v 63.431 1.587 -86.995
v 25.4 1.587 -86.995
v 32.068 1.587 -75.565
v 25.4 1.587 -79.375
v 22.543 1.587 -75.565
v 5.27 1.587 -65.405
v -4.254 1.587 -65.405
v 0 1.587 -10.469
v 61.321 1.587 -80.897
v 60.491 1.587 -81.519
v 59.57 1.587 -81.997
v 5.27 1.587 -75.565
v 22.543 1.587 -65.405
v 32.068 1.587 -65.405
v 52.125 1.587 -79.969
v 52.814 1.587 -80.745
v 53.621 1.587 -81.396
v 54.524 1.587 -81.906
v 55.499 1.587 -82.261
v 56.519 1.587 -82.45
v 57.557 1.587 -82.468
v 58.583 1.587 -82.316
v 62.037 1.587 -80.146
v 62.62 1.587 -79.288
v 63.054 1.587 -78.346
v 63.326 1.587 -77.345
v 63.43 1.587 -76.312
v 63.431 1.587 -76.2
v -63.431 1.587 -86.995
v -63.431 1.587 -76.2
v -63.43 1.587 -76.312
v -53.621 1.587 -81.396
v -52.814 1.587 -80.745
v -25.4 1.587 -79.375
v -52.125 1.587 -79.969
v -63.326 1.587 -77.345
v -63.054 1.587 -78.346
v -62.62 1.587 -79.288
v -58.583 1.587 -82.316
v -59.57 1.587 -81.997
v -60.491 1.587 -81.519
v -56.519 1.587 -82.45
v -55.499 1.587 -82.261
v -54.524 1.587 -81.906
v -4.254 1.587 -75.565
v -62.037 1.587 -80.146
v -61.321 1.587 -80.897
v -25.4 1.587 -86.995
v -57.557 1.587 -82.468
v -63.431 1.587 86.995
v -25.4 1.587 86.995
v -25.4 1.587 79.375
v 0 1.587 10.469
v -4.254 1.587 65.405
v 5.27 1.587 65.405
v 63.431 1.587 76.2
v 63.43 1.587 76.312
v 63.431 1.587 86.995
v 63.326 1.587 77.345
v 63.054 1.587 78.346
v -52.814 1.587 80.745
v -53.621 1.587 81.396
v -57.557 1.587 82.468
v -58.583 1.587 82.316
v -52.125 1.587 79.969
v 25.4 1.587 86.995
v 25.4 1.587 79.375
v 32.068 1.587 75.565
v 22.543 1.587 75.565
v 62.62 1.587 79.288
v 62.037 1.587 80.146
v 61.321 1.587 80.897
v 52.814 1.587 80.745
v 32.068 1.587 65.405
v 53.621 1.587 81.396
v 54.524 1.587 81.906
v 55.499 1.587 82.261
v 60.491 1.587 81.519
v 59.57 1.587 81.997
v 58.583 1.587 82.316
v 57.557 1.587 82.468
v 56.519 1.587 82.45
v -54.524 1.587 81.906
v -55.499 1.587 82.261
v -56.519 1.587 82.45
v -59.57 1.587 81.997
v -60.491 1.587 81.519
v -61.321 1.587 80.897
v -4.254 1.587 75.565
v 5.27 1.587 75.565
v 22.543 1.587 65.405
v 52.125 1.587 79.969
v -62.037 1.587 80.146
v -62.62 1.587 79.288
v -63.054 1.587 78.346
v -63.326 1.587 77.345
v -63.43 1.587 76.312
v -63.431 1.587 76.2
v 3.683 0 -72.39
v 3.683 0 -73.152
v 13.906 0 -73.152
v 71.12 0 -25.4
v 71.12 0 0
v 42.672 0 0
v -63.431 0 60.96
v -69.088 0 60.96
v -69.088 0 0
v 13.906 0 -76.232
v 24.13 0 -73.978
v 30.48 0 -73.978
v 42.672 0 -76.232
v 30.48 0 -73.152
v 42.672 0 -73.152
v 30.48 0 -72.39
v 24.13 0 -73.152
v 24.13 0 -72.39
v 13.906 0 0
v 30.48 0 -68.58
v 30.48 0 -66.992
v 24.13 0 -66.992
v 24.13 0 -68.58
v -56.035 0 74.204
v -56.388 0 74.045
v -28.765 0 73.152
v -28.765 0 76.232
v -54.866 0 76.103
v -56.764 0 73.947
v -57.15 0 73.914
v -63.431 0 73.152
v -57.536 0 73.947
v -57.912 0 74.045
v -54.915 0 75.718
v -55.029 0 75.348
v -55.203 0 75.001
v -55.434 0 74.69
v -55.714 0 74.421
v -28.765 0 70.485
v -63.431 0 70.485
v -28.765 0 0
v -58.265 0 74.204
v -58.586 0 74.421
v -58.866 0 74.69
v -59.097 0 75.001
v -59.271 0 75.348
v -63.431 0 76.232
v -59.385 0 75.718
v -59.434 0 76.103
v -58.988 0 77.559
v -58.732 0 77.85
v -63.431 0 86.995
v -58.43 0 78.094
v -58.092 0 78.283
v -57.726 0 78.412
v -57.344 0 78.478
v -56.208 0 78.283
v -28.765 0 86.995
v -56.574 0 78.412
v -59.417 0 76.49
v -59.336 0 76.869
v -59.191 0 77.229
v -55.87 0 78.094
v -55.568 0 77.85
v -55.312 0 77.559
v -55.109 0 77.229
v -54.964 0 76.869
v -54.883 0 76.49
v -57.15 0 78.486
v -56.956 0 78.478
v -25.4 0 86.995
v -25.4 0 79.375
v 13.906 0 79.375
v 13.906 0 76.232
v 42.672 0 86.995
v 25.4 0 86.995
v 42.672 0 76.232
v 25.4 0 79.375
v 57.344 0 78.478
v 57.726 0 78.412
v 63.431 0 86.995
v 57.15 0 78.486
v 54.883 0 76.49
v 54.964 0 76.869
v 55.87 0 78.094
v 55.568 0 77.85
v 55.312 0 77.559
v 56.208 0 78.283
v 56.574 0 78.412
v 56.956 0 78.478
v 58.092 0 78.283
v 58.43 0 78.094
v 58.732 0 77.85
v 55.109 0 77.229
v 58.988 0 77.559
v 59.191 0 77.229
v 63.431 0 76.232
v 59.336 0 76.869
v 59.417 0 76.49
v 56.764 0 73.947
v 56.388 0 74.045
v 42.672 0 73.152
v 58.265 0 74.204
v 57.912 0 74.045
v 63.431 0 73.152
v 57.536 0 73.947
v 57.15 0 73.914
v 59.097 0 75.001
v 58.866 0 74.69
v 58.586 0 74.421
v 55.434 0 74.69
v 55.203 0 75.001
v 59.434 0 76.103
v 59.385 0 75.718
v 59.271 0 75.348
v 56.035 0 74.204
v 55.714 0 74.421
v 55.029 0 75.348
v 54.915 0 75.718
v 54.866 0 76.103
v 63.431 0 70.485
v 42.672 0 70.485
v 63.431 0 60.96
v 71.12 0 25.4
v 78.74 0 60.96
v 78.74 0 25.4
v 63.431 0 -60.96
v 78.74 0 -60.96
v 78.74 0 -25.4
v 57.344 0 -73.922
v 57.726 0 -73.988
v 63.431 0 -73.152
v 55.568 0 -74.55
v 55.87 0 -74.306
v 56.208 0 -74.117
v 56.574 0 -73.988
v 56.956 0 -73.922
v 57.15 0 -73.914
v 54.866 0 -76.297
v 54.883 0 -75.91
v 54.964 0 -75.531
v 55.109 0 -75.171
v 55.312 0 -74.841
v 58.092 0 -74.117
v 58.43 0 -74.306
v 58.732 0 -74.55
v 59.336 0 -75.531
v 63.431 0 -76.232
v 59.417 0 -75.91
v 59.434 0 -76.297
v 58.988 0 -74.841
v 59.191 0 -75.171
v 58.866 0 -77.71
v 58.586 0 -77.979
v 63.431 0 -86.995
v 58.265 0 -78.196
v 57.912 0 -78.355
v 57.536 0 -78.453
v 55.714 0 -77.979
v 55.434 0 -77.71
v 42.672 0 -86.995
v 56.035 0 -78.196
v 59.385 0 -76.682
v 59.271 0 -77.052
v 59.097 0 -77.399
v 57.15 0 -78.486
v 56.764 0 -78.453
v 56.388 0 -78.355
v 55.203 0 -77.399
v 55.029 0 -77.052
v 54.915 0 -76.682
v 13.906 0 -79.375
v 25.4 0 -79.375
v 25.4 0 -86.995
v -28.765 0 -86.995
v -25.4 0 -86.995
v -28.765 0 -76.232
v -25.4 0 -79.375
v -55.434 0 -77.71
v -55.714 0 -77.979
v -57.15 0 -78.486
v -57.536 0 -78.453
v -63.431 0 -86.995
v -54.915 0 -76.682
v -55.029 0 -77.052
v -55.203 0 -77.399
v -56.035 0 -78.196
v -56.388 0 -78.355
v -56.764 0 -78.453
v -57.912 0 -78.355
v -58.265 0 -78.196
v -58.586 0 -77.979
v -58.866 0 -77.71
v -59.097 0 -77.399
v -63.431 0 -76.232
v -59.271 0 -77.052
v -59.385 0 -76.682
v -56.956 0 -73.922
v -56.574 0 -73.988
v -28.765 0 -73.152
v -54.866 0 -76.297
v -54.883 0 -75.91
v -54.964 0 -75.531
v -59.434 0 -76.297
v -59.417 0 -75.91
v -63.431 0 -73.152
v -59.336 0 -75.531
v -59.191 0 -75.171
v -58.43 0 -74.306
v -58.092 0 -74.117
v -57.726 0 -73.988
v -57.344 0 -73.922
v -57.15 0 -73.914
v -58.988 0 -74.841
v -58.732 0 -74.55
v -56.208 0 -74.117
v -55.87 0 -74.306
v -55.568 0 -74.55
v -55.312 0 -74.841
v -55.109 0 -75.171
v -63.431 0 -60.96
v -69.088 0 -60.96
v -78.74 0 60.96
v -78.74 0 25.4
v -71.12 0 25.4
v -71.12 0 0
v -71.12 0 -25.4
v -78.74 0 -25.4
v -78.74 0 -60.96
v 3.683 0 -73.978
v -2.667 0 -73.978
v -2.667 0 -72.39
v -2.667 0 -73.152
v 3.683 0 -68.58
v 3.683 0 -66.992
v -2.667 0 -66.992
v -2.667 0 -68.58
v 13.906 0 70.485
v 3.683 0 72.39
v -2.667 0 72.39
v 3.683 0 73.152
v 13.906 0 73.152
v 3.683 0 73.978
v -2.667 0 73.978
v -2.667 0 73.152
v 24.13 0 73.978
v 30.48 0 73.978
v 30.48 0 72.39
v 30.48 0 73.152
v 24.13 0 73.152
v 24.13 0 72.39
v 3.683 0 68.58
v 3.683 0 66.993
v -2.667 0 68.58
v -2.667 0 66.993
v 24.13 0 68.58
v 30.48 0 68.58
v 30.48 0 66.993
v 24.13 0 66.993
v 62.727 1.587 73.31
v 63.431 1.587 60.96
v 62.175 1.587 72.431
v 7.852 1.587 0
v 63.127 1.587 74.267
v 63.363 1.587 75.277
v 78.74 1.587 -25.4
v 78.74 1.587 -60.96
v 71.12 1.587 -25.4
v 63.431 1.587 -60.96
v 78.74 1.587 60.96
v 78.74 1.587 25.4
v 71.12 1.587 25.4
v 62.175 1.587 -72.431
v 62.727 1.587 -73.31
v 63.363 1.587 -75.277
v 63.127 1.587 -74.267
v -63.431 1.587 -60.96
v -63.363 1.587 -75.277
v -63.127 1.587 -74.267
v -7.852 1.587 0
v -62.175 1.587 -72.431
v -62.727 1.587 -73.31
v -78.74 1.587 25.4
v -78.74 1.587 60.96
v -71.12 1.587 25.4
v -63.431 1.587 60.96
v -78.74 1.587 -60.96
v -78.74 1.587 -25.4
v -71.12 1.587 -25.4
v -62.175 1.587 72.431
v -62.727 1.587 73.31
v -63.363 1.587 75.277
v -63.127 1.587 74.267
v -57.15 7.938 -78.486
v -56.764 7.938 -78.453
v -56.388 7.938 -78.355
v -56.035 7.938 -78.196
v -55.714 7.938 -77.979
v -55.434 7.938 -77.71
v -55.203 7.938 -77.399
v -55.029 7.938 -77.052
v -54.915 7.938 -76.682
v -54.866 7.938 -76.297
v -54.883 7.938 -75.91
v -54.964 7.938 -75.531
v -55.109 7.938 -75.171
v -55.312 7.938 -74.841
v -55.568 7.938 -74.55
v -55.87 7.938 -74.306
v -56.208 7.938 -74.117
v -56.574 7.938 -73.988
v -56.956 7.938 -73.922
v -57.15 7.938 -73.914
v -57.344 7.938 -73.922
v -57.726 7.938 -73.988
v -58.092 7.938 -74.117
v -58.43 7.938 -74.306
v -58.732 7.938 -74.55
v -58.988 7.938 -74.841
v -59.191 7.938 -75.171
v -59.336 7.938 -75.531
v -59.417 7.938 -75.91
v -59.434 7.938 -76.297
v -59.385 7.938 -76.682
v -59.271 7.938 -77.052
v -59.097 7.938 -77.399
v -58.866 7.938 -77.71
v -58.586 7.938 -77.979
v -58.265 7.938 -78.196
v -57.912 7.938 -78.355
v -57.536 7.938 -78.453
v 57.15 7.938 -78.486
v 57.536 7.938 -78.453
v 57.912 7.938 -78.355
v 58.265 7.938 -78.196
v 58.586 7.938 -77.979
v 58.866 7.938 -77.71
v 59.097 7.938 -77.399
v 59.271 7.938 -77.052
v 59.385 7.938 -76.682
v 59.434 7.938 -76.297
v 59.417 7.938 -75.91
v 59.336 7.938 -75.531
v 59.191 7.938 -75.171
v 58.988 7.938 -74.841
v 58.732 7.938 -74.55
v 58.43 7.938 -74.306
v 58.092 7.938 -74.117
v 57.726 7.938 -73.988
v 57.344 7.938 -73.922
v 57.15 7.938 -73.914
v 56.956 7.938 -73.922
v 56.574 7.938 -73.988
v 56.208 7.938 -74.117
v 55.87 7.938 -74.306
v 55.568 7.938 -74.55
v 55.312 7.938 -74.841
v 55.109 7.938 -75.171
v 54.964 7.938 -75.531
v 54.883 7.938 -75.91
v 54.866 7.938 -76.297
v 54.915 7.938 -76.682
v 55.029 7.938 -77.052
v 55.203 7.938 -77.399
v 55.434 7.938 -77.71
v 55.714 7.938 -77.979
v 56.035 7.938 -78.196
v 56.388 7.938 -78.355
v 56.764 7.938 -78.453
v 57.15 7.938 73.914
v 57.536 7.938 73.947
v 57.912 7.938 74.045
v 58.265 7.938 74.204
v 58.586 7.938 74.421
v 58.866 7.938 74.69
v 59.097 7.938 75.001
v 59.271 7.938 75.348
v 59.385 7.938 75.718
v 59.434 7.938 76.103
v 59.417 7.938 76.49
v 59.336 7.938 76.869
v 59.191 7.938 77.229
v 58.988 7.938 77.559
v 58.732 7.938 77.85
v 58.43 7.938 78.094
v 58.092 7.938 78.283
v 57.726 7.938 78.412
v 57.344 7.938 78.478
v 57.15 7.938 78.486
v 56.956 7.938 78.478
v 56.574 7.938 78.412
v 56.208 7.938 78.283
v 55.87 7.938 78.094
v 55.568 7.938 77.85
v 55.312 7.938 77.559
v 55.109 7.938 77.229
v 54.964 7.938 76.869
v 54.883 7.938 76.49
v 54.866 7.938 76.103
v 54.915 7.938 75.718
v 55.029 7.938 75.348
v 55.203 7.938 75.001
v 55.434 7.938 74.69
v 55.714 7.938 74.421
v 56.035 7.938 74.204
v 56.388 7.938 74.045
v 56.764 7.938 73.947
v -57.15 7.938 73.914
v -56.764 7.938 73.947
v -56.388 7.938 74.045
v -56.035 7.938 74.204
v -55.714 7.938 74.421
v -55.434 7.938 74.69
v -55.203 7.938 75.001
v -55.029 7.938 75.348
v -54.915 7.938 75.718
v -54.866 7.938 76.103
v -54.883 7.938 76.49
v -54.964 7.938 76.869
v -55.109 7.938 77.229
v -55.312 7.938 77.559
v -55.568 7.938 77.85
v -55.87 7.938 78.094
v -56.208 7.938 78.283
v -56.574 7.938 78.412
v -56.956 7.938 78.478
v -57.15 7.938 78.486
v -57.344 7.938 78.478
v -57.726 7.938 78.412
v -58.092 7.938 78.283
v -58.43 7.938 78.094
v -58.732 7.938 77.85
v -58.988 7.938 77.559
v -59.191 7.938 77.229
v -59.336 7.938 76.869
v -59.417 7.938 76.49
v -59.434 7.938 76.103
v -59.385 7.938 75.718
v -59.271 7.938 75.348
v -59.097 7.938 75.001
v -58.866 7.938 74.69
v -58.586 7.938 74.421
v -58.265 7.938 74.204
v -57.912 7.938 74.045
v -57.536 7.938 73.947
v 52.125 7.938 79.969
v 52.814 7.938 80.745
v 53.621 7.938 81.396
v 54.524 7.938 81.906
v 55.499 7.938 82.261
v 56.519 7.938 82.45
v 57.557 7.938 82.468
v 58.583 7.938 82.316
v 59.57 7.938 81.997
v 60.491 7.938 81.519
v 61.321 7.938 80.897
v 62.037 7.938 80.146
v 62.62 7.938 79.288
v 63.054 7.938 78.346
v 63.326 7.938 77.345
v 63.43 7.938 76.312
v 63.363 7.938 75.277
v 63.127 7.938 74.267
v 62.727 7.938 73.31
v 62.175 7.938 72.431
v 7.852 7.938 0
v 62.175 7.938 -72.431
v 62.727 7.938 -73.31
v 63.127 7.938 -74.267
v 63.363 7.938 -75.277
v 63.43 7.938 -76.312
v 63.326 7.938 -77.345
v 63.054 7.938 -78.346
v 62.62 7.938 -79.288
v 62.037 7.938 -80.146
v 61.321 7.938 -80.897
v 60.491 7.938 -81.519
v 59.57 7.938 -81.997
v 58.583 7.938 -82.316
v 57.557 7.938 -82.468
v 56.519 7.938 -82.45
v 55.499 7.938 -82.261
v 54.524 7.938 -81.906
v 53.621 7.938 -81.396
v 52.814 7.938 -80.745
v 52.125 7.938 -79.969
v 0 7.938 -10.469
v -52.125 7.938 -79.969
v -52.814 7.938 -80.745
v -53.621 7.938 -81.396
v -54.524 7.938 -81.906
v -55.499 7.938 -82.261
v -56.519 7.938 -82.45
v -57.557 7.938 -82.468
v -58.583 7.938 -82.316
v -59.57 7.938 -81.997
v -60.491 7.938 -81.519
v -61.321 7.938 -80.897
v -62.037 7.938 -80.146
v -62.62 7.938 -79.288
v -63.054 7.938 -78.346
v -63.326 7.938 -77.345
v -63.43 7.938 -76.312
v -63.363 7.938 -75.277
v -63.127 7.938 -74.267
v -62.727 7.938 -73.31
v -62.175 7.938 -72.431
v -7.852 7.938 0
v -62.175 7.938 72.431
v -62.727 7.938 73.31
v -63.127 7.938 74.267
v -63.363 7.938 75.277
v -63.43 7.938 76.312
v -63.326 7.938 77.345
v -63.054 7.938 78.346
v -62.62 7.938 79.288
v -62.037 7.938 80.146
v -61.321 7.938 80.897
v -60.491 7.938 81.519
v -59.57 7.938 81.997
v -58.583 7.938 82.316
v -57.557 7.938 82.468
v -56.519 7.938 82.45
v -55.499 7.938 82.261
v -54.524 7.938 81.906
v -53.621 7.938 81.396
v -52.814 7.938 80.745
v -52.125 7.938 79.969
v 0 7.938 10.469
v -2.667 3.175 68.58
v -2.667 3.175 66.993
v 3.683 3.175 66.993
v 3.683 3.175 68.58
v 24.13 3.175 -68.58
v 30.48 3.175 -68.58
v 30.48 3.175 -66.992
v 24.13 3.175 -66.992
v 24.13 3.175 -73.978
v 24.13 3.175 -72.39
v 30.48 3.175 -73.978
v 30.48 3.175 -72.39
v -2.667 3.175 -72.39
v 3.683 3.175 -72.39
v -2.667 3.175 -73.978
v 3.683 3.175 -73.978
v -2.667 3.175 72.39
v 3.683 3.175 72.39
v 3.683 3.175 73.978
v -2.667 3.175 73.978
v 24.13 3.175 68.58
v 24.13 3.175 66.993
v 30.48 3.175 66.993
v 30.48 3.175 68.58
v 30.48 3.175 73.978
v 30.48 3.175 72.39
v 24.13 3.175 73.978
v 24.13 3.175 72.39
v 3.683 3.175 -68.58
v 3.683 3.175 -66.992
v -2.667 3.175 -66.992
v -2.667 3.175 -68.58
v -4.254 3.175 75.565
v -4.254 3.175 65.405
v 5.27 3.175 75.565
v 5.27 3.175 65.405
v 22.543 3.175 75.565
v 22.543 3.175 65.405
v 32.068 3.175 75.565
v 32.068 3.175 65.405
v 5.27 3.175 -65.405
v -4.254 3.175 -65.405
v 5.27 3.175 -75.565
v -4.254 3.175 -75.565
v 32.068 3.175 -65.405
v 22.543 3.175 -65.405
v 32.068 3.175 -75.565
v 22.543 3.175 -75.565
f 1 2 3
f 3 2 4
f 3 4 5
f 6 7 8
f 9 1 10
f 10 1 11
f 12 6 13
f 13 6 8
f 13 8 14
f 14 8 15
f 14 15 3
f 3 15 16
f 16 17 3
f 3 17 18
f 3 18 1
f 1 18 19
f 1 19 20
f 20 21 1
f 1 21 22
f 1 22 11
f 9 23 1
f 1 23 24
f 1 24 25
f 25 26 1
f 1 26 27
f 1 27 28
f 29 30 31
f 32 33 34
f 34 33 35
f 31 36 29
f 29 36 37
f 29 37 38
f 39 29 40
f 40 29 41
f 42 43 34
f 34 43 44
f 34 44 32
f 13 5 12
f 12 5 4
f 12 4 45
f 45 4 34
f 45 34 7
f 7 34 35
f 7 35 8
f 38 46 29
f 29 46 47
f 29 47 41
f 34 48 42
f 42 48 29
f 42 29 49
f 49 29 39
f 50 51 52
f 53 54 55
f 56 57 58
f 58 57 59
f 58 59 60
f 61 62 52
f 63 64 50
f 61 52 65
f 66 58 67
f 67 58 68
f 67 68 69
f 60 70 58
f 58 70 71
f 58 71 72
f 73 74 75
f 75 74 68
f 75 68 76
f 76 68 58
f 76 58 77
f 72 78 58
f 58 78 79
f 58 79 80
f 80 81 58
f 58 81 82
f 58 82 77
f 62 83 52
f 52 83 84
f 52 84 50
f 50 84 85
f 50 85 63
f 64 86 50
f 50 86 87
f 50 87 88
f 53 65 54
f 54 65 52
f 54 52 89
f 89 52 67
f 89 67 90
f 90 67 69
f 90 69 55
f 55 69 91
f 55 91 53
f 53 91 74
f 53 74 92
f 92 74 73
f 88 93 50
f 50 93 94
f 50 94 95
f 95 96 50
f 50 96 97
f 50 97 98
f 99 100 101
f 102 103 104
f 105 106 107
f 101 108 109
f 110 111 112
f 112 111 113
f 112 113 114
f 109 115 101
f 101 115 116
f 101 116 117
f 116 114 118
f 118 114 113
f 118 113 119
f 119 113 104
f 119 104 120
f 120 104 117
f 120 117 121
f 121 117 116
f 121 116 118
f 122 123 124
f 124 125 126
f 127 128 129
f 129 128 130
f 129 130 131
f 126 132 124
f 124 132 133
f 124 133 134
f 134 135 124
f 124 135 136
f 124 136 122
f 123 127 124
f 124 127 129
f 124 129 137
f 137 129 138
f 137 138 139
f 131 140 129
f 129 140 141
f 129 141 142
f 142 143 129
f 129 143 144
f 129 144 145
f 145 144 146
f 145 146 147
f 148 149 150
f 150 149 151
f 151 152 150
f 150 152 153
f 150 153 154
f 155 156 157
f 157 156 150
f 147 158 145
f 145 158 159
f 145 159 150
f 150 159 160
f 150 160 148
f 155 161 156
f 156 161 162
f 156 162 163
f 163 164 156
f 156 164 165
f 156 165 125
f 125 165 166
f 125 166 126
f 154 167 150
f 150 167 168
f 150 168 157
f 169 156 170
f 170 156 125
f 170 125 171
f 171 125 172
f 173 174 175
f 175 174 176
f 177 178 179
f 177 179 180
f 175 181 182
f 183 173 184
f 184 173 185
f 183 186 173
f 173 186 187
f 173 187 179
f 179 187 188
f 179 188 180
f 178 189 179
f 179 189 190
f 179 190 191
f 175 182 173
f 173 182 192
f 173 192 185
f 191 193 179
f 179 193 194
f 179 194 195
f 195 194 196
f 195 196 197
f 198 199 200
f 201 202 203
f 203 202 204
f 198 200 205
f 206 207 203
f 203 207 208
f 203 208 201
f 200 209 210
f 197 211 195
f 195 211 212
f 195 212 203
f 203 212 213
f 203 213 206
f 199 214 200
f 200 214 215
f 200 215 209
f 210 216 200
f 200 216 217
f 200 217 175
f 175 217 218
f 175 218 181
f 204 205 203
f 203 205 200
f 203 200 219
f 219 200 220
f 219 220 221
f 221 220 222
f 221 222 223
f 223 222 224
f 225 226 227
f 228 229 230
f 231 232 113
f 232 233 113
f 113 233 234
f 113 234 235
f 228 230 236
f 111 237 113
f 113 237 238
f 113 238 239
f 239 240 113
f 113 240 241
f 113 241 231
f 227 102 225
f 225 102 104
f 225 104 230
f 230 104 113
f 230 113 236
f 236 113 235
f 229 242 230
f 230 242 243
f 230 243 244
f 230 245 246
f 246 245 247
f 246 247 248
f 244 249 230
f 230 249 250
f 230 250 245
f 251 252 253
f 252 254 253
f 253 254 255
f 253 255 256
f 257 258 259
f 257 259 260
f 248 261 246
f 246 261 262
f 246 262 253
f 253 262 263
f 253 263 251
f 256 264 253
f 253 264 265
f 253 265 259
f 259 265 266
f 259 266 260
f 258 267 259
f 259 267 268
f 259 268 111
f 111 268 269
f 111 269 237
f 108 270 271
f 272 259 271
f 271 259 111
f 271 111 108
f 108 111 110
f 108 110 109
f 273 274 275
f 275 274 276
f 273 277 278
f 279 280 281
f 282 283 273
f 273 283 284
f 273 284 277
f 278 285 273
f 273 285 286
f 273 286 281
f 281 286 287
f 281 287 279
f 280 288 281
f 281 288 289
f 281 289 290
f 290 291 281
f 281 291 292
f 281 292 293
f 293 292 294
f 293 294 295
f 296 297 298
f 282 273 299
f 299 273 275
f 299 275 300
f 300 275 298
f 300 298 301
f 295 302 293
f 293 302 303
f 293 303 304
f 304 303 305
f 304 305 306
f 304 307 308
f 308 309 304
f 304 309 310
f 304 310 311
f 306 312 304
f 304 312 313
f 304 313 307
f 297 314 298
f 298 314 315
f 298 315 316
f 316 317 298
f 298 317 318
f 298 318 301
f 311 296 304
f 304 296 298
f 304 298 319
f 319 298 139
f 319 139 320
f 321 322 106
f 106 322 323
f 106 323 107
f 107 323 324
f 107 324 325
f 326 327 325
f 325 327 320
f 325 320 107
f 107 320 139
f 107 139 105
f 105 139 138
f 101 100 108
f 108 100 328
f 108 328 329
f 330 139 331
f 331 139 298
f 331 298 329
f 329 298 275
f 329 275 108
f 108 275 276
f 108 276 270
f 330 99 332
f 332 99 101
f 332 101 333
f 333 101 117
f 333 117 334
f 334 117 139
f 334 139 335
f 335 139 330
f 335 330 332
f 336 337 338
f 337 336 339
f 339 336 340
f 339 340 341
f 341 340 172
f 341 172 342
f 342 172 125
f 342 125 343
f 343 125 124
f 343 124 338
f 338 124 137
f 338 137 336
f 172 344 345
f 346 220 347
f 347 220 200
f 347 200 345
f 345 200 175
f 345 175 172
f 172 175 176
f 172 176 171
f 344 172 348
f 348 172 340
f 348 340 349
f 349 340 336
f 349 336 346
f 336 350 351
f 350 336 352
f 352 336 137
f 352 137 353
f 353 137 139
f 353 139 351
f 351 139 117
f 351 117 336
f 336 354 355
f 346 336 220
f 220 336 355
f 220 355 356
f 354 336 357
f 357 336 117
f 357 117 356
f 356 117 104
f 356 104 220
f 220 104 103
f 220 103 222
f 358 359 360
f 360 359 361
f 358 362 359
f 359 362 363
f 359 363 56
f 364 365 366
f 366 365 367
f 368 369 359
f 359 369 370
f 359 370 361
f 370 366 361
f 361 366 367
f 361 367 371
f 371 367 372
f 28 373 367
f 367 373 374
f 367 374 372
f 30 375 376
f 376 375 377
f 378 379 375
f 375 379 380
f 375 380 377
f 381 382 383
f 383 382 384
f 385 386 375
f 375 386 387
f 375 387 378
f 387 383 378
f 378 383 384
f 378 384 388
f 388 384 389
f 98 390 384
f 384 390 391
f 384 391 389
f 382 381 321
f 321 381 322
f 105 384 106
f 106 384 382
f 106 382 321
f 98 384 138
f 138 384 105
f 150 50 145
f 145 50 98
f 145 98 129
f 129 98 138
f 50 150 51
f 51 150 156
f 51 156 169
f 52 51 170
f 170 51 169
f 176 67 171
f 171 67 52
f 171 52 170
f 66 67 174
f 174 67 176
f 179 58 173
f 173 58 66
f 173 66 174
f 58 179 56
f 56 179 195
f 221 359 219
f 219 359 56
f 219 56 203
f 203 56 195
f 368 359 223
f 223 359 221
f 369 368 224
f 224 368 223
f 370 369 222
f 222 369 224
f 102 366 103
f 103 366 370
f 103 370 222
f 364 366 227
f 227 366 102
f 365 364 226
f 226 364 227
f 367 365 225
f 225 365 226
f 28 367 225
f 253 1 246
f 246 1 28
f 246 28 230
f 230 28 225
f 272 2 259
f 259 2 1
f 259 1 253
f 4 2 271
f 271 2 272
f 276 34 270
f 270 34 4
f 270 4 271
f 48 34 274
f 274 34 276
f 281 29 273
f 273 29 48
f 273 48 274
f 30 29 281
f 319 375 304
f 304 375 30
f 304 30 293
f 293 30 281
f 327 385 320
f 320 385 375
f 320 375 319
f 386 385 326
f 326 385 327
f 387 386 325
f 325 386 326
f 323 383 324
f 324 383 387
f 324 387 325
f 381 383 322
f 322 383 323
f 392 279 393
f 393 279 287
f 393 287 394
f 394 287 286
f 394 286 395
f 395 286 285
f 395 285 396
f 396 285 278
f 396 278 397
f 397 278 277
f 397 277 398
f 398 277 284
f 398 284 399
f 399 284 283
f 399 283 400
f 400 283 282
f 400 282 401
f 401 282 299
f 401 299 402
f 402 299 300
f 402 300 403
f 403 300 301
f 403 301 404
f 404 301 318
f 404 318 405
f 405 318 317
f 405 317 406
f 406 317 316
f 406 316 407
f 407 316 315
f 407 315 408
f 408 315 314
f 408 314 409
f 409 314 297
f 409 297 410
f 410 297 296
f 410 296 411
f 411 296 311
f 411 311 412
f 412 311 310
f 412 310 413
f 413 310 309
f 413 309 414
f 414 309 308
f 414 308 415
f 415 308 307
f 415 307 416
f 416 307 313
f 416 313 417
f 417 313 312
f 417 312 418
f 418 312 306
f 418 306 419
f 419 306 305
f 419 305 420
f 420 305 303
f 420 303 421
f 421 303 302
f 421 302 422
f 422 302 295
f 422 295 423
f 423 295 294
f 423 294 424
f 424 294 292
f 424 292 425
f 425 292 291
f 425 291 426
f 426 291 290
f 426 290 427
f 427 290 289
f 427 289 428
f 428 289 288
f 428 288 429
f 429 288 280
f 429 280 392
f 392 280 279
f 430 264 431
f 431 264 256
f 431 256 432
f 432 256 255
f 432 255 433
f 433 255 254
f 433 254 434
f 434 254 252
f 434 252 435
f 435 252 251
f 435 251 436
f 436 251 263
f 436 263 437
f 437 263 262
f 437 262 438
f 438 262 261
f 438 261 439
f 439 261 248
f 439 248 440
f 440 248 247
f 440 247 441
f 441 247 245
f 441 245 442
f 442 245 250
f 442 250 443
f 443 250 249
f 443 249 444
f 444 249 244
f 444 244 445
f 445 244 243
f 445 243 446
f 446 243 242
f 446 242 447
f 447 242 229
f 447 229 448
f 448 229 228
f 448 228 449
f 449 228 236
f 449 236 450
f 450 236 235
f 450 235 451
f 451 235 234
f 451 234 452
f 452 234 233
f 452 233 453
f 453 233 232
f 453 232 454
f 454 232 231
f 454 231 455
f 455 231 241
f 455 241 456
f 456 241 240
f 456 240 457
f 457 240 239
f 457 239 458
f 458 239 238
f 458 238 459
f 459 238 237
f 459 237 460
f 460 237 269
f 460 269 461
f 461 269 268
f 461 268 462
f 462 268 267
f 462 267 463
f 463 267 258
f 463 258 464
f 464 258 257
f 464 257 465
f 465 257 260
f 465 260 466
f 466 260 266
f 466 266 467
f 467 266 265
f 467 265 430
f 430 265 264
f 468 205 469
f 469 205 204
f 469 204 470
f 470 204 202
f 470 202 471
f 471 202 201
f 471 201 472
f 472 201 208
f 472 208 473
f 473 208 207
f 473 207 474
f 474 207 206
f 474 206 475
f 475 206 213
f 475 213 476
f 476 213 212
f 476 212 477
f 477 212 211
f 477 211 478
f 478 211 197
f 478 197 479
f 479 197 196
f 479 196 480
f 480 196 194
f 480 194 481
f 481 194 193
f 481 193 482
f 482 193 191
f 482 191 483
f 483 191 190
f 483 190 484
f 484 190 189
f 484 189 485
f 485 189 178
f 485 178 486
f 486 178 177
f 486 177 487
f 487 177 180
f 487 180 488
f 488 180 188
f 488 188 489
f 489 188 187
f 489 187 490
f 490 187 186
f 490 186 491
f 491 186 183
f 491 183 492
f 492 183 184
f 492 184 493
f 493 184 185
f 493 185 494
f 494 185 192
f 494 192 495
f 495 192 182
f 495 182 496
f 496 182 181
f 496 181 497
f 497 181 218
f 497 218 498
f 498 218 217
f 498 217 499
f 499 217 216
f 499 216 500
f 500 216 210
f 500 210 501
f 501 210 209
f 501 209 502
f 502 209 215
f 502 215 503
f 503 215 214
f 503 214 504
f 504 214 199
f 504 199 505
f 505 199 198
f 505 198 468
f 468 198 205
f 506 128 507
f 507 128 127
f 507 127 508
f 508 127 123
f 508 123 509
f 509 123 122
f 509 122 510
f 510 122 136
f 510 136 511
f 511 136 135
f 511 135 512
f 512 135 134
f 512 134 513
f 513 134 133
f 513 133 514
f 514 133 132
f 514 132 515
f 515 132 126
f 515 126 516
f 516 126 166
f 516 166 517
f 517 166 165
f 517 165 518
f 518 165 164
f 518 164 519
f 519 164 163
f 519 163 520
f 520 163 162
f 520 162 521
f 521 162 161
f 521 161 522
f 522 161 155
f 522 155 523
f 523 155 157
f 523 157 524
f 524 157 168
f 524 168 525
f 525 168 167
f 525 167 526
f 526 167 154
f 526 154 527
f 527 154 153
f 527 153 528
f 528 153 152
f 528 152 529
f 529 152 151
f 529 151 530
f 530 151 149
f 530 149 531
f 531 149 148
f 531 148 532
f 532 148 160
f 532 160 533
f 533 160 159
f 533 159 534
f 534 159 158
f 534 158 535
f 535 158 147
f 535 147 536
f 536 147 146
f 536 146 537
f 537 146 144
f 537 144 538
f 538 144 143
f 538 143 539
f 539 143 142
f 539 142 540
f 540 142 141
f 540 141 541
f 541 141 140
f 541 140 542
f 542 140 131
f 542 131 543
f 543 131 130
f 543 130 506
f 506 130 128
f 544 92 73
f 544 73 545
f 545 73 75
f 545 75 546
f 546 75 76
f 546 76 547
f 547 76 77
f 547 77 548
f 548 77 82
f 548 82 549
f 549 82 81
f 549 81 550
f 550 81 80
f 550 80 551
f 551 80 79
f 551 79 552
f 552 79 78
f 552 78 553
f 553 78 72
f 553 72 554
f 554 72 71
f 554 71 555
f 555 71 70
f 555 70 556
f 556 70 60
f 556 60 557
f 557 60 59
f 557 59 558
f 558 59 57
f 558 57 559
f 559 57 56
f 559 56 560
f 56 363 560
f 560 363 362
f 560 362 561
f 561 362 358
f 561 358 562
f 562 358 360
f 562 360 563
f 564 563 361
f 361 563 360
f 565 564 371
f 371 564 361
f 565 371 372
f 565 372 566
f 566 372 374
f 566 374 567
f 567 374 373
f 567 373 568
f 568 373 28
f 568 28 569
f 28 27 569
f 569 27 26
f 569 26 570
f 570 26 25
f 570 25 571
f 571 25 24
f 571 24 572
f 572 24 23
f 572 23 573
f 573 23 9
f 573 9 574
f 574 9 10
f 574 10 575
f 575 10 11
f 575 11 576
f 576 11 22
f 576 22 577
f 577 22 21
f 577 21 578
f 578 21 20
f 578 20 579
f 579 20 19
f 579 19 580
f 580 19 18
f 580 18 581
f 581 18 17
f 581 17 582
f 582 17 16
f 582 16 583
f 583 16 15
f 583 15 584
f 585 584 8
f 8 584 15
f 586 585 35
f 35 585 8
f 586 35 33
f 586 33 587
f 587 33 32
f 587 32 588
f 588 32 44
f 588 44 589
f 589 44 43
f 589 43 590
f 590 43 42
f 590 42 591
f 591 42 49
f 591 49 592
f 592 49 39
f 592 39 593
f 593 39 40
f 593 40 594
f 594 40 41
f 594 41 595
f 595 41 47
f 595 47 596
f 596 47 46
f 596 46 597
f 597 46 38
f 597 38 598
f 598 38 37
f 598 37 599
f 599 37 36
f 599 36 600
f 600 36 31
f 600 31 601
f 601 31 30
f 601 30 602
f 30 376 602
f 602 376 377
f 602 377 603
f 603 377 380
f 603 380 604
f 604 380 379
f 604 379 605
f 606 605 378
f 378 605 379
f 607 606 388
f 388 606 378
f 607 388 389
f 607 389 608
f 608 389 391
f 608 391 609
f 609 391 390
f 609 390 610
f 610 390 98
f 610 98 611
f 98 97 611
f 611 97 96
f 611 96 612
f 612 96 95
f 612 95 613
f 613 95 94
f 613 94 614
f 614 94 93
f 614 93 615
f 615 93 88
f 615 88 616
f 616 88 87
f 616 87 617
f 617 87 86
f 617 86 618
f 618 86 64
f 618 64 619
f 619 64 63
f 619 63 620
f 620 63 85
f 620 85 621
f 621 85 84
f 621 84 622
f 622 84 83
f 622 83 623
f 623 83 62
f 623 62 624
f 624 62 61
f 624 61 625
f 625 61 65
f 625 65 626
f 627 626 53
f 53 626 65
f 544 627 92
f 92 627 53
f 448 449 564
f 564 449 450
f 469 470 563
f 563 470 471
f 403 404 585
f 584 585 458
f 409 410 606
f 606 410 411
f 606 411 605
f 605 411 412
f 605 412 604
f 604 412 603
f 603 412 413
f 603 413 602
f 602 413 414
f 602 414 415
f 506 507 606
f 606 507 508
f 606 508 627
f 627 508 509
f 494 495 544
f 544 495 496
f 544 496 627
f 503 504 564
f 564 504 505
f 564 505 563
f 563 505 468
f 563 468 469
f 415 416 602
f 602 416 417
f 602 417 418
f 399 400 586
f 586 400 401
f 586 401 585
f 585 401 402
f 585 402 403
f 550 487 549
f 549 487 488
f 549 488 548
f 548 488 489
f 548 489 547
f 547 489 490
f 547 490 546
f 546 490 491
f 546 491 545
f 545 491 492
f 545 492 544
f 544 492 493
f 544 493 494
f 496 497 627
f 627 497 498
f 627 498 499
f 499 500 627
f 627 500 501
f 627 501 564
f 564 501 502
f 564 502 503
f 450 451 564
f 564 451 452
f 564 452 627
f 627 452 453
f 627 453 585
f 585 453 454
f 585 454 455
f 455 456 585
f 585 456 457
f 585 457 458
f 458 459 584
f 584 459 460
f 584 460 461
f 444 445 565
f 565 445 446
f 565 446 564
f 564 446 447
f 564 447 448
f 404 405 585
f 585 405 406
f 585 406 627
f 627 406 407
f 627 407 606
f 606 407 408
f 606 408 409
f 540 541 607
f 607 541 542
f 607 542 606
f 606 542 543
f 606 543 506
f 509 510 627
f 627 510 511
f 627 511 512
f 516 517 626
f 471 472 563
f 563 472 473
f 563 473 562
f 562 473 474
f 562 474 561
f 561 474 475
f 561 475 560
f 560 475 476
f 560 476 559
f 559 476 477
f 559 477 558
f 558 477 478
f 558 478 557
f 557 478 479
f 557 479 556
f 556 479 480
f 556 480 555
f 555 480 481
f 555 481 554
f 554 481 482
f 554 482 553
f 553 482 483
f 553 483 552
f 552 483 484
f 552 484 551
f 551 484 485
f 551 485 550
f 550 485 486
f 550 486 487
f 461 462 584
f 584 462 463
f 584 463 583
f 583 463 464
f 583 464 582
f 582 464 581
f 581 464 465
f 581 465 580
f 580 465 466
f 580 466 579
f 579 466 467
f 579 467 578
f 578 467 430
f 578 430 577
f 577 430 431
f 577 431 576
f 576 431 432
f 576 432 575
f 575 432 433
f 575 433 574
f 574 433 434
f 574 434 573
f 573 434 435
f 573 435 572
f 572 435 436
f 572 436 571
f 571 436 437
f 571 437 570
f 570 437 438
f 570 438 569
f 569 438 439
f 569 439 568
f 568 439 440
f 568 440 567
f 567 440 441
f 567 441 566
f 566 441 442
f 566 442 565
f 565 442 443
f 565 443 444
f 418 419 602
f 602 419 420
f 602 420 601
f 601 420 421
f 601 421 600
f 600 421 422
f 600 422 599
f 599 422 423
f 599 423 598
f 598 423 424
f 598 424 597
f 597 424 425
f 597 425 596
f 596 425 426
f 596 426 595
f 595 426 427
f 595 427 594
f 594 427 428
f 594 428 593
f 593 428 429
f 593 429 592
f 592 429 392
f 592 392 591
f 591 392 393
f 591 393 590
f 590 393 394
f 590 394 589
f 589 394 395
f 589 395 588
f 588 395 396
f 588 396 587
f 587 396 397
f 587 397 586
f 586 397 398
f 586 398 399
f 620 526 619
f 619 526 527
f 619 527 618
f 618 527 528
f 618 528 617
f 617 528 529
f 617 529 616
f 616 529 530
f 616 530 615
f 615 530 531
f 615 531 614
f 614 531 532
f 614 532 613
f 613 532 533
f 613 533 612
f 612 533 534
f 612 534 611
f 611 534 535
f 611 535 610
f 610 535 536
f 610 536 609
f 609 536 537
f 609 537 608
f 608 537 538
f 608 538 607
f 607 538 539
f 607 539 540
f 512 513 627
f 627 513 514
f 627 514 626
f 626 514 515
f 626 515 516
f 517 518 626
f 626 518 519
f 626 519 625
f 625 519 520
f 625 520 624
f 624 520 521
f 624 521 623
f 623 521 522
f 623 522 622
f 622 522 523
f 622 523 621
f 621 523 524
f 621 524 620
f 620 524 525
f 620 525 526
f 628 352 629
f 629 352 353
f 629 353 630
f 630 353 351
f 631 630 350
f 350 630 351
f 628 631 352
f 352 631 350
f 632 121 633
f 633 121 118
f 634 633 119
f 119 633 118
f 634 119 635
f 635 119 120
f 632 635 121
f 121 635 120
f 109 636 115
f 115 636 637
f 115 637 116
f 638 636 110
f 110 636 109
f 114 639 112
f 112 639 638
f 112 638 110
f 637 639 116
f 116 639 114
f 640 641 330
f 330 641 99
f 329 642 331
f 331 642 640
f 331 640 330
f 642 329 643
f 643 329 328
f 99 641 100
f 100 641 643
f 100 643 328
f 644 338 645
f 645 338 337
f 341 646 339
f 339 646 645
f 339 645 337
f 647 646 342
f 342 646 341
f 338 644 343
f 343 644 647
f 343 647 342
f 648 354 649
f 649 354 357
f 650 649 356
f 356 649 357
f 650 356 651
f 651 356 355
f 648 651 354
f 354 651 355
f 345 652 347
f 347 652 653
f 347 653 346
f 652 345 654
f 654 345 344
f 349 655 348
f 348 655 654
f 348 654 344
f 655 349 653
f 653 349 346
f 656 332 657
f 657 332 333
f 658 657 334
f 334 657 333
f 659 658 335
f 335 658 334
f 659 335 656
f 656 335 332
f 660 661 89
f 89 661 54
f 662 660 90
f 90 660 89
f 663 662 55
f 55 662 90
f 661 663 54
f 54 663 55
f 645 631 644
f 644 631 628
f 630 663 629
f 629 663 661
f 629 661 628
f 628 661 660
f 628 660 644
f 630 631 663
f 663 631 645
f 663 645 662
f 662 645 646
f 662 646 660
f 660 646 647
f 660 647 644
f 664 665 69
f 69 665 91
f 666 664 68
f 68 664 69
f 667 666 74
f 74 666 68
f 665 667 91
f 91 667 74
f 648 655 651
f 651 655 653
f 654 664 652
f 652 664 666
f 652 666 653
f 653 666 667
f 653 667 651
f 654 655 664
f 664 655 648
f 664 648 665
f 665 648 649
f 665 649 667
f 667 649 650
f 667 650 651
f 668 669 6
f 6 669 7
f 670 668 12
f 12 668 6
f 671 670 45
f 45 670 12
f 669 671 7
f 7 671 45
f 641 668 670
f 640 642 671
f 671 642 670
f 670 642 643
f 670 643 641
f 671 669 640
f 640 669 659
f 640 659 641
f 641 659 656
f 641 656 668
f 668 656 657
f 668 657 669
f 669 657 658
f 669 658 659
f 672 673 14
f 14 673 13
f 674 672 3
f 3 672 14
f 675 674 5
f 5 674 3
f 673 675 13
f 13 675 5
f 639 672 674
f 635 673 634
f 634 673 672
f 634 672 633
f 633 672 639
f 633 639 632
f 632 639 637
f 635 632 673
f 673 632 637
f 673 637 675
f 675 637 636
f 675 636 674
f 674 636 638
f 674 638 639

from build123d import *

# Parameters (mm, degrees)
SKETCH1_R           = 2.286
MAIN_BODY_DEPTH     = 1.5875
SKETCH3_R           = 2.286
BOSS_EXTRUDE1_DEPTH = 6.35
CUT_EXTRUDE2_REACH  = 3.587
SKETCH2_W           = 6.35
SKETCH2_H           = 1.5875
SKETCH5_W           = 6.35
SKETCH5_H           = 1.5875
BOSS_EXTRUDE3_DEPTH = 1.5875


with BuildPart() as part:
    # Sketch1 → Main Body (new body)
    with BuildSketch(Plane(origin=(0, 0, 0), x_dir=(1, 0, 0), z_dir=(0, 1, 0))):
        Polygon((-25.4, 86.995), (-63.43142, 86.995), (-63.43142, 60.96), (-78.74, 60.96), (-78.74, 25.4), (-71.12, 25.4), (-71.12, -25.4), (-78.74, -25.4), (-78.74, -60.96), (-63.43142, -60.96), (-63.43142, -86.995), (-25.4, -86.995), (-25.4, -79.375), (25.4, -79.375), (25.4, -86.995), (63.43142, -86.995), (63.43142, -60.96), (78.74, -60.96), (78.74, -25.4), (71.12, -25.4), (71.12, 25.4), (78.74, 25.4), (78.74, 60.96), (63.43142, 60.96), (63.43142, 86.995), (25.4, 86.995), (25.4, 79.375), (-25.4, 79.375), align=None)
        with Locations((-57.15, 76.2)):
            Circle(SKETCH1_R, mode=Mode.SUBTRACT)
        with Locations((57.15, 76.2)):
            Circle(SKETCH1_R, mode=Mode.SUBTRACT)
        with Locations((57.15, -76.2)):
            Circle(SKETCH1_R, mode=Mode.SUBTRACT)
        with Locations((-57.15, -76.2)):
            Circle(SKETCH1_R, mode=Mode.SUBTRACT)
    extrude(amount=MAIN_BODY_DEPTH)

    # Sketch3 → Boss-Extrude1 (add)
    with BuildSketch(Plane(origin=(0, 1.5875, 0), x_dir=(1, 0, 0), z_dir=(0, 1, 0))):
        with BuildLine():
            Line((62.175136, -72.431148), (7.851775, 0))
            Line((7.851775, 0), (62.175136, 72.431148))
            ThreePointArc((62.175136, 72.431148), (60.918852, 81.225136), (52.124864, 79.968852))
            Line((52.124864, 79.968852), (0, 10.469033333))
            Line((0, 10.469033333), (-52.124864, 79.968852))
            ThreePointArc((-52.124864, 79.968852), (-60.918852, 81.225136), (-62.175136, 72.431148))
            Line((-62.175136, 72.431148), (-7.851775, 0))
            Line((-7.851775, 0), (-62.175136, -72.431148))
            ThreePointArc((-62.175136, -72.431148), (-60.918852, -81.225136), (-52.124864, -79.968852))
            Line((-52.124864, -79.968852), (0, -10.469033333))
            Line((0, -10.469033333), (52.124864, -79.968852))
            ThreePointArc((52.124864, -79.968852), (60.918852, -81.225136), (62.175136, -72.431148))
        make_face()
        with Locations((57.15, 76.2)):
            Circle(SKETCH3_R, mode=Mode.SUBTRACT)
        with Locations((57.15, -76.2)):
            Circle(SKETCH3_R, mode=Mode.SUBTRACT)
        with Locations((-57.15, -76.2)):
            Circle(SKETCH3_R, mode=Mode.SUBTRACT)
        with Locations((-57.15, 76.2)):
            Circle(SKETCH3_R, mode=Mode.SUBTRACT)
    extrude(amount=BOSS_EXTRUDE1_DEPTH)

    # Sketch2 → Cut-Extrude2 (cut, up to next)
    with BuildSketch(Plane(origin=(0, 1.5875, 0), x_dir=(1, 0, 0), z_dir=(0, 1, 0)), mode=Mode.PRIVATE) as cut_extrude2_sk1:
        with Locations((0.508, -67.78625)):
            Rectangle(SKETCH2_W, SKETCH2_H)
    cut_extrude2_tool1 = extrude(cut_extrude2_sk1.sketch, amount=-CUT_EXTRUDE2_REACH, mode=Mode.PRIVATE) & part.part
    add(cut_extrude2_tool1.solids().sort_by_distance((0.508, 1.5875, 67.78625))[0], mode=Mode.SUBTRACT)
    # Sketch2 → Cut-Extrude2 (cut, up to next)
    with BuildSketch(Plane(origin=(0, 1.5875, 0), x_dir=(1, 0, 0), z_dir=(0, 1, 0)), mode=Mode.PRIVATE) as cut_extrude2_sk2:
        with Locations((0.508, -73.18375)):
            Rectangle(SKETCH2_W, SKETCH2_H)
    cut_extrude2_tool2 = extrude(cut_extrude2_sk2.sketch, amount=-CUT_EXTRUDE2_REACH, mode=Mode.PRIVATE) & part.part
    add(cut_extrude2_tool2.solids().sort_by_distance((0.508, 1.5875, 73.18375))[0], mode=Mode.SUBTRACT)
    # Sketch2 → Cut-Extrude2 (cut, up to next)
    with BuildSketch(Plane(origin=(0, 1.5875, 0), x_dir=(1, 0, 0), z_dir=(0, 1, 0)), mode=Mode.PRIVATE) as cut_extrude2_sk3:
        with Locations((27.305, -67.78625)):
            Rectangle(SKETCH2_W, SKETCH2_H)
    cut_extrude2_tool3 = extrude(cut_extrude2_sk3.sketch, amount=-CUT_EXTRUDE2_REACH, mode=Mode.PRIVATE) & part.part
    add(cut_extrude2_tool3.solids().sort_by_distance((27.305, 1.5875, 67.78625))[0], mode=Mode.SUBTRACT)
    # Sketch2 → Cut-Extrude2 (cut, up to next)
    with BuildSketch(Plane(origin=(0, 1.5875, 0), x_dir=(1, 0, 0), z_dir=(0, 1, 0)), mode=Mode.PRIVATE) as cut_extrude2_sk4:
        with Locations((27.305, -73.18375)):
            Rectangle(SKETCH2_W, SKETCH2_H)
    cut_extrude2_tool4 = extrude(cut_extrude2_sk4.sketch, amount=-CUT_EXTRUDE2_REACH, mode=Mode.PRIVATE) & part.part
    add(cut_extrude2_tool4.solids().sort_by_distance((27.305, 1.5875, 73.18375))[0], mode=Mode.SUBTRACT)
    # Sketch2 → Cut-Extrude2 (cut, up to next)
    with BuildSketch(Plane(origin=(0, 1.5875, 0), x_dir=(1, 0, 0), z_dir=(0, 1, 0)), mode=Mode.PRIVATE) as cut_extrude2_sk5:
        with Locations((0.508, 67.78625)):
            Rectangle(SKETCH2_W, SKETCH2_H)
    cut_extrude2_tool5 = extrude(cut_extrude2_sk5.sketch, amount=-CUT_EXTRUDE2_REACH, mode=Mode.PRIVATE) & part.part
    add(cut_extrude2_tool5.solids().sort_by_distance((0.508, 1.5875, -67.78625))[0], mode=Mode.SUBTRACT)
    # Sketch2 → Cut-Extrude2 (cut, up to next)
    with BuildSketch(Plane(origin=(0, 1.5875, 0), x_dir=(1, 0, 0), z_dir=(0, 1, 0)), mode=Mode.PRIVATE) as cut_extrude2_sk6:
        with Locations((0.508, 73.18375)):
            Rectangle(SKETCH2_W, SKETCH2_H)
    cut_extrude2_tool6 = extrude(cut_extrude2_sk6.sketch, amount=-CUT_EXTRUDE2_REACH, mode=Mode.PRIVATE) & part.part
    add(cut_extrude2_tool6.solids().sort_by_distance((0.508, 1.5875, -73.18375))[0], mode=Mode.SUBTRACT)
    # Sketch2 → Cut-Extrude2 (cut, up to next)
    with BuildSketch(Plane(origin=(0, 1.5875, 0), x_dir=(1, 0, 0), z_dir=(0, 1, 0)), mode=Mode.PRIVATE) as cut_extrude2_sk7:
        with Locations((27.305, 73.18375)):
            Rectangle(SKETCH2_W, SKETCH2_H)
    cut_extrude2_tool7 = extrude(cut_extrude2_sk7.sketch, amount=-CUT_EXTRUDE2_REACH, mode=Mode.PRIVATE) & part.part
    add(cut_extrude2_tool7.solids().sort_by_distance((27.305, 1.5875, -73.18375))[0], mode=Mode.SUBTRACT)
    # Sketch2 → Cut-Extrude2 (cut, up to next)
    with BuildSketch(Plane(origin=(0, 1.5875, 0), x_dir=(1, 0, 0), z_dir=(0, 1, 0)), mode=Mode.PRIVATE) as cut_extrude2_sk8:
        with Locations((27.305, 67.78625)):
            Rectangle(SKETCH2_W, SKETCH2_H)
    cut_extrude2_tool8 = extrude(cut_extrude2_sk8.sketch, amount=-CUT_EXTRUDE2_REACH, mode=Mode.PRIVATE) & part.part
    add(cut_extrude2_tool8.solids().sort_by_distance((27.305, 1.5875, -67.78625))[0], mode=Mode.SUBTRACT)

    # Sketch5 → Boss-Extrude3 (add)
    with BuildSketch(Plane(origin=(0, 1.5875, 0), x_dir=(1, 0, 0), z_dir=(0, 1, 0))):
        Polygon((-4.2545, -70.8025), (-4.2545, -70.1675), (-4.2545, -65.405), (5.2705, -65.405), (5.2705, -70.1675), (5.2705, -70.8025), (5.2705, -75.565), (-4.2545, -75.565), align=None)
        with Locations((0.508, -67.78625)):
            Rectangle(SKETCH5_W, SKETCH5_H, mode=Mode.SUBTRACT)
        with Locations((0.508, -73.18375)):
            Rectangle(SKETCH5_W, SKETCH5_H, mode=Mode.SUBTRACT)
        Polygon((22.5425, -70.8025), (22.5425, -70.1675), (22.5425, -65.405), (32.0675, -65.405), (32.0675, -70.1675), (32.0675, -70.8025), (32.0675, -75.565), (22.5425, -75.565), align=None)
        with Locations((27.305, -67.78625)):
            Rectangle(SKETCH5_W, SKETCH5_H, mode=Mode.SUBTRACT)
        with Locations((27.305, -73.18375)):
            Rectangle(SKETCH5_W, SKETCH5_H, mode=Mode.SUBTRACT)
        Polygon((-4.2545, 65.405), (5.2705, 65.405), (5.2705, 70.1675), (5.2705, 70.8025), (5.2705, 75.565), (-4.2545, 75.565), (-4.2545, 70.8025), (-4.2545, 70.1675), align=None)
        with Locations((0.508, 73.18375)):
            Rectangle(SKETCH5_W, SKETCH5_H, mode=Mode.SUBTRACT)
        with Locations((0.508, 67.78625)):
            Rectangle(SKETCH5_W, SKETCH5_H, mode=Mode.SUBTRACT)
        Polygon((22.5425, 65.405), (32.0675, 65.405), (32.0675, 70.1675), (32.0675, 70.8025), (32.0675, 75.565), (22.5425, 75.565), (22.5425, 70.8025), (22.5425, 70.1675), align=None)
        with Locations((27.305, 73.18375)):
            Rectangle(SKETCH5_W, SKETCH5_H, mode=Mode.SUBTRACT)
        with Locations((27.305, 67.78625)):
            Rectangle(SKETCH5_W, SKETCH5_H, mode=Mode.SUBTRACT)
    extrude(amount=BOSS_EXTRUDE3_DEPTH)


solid = part.part
